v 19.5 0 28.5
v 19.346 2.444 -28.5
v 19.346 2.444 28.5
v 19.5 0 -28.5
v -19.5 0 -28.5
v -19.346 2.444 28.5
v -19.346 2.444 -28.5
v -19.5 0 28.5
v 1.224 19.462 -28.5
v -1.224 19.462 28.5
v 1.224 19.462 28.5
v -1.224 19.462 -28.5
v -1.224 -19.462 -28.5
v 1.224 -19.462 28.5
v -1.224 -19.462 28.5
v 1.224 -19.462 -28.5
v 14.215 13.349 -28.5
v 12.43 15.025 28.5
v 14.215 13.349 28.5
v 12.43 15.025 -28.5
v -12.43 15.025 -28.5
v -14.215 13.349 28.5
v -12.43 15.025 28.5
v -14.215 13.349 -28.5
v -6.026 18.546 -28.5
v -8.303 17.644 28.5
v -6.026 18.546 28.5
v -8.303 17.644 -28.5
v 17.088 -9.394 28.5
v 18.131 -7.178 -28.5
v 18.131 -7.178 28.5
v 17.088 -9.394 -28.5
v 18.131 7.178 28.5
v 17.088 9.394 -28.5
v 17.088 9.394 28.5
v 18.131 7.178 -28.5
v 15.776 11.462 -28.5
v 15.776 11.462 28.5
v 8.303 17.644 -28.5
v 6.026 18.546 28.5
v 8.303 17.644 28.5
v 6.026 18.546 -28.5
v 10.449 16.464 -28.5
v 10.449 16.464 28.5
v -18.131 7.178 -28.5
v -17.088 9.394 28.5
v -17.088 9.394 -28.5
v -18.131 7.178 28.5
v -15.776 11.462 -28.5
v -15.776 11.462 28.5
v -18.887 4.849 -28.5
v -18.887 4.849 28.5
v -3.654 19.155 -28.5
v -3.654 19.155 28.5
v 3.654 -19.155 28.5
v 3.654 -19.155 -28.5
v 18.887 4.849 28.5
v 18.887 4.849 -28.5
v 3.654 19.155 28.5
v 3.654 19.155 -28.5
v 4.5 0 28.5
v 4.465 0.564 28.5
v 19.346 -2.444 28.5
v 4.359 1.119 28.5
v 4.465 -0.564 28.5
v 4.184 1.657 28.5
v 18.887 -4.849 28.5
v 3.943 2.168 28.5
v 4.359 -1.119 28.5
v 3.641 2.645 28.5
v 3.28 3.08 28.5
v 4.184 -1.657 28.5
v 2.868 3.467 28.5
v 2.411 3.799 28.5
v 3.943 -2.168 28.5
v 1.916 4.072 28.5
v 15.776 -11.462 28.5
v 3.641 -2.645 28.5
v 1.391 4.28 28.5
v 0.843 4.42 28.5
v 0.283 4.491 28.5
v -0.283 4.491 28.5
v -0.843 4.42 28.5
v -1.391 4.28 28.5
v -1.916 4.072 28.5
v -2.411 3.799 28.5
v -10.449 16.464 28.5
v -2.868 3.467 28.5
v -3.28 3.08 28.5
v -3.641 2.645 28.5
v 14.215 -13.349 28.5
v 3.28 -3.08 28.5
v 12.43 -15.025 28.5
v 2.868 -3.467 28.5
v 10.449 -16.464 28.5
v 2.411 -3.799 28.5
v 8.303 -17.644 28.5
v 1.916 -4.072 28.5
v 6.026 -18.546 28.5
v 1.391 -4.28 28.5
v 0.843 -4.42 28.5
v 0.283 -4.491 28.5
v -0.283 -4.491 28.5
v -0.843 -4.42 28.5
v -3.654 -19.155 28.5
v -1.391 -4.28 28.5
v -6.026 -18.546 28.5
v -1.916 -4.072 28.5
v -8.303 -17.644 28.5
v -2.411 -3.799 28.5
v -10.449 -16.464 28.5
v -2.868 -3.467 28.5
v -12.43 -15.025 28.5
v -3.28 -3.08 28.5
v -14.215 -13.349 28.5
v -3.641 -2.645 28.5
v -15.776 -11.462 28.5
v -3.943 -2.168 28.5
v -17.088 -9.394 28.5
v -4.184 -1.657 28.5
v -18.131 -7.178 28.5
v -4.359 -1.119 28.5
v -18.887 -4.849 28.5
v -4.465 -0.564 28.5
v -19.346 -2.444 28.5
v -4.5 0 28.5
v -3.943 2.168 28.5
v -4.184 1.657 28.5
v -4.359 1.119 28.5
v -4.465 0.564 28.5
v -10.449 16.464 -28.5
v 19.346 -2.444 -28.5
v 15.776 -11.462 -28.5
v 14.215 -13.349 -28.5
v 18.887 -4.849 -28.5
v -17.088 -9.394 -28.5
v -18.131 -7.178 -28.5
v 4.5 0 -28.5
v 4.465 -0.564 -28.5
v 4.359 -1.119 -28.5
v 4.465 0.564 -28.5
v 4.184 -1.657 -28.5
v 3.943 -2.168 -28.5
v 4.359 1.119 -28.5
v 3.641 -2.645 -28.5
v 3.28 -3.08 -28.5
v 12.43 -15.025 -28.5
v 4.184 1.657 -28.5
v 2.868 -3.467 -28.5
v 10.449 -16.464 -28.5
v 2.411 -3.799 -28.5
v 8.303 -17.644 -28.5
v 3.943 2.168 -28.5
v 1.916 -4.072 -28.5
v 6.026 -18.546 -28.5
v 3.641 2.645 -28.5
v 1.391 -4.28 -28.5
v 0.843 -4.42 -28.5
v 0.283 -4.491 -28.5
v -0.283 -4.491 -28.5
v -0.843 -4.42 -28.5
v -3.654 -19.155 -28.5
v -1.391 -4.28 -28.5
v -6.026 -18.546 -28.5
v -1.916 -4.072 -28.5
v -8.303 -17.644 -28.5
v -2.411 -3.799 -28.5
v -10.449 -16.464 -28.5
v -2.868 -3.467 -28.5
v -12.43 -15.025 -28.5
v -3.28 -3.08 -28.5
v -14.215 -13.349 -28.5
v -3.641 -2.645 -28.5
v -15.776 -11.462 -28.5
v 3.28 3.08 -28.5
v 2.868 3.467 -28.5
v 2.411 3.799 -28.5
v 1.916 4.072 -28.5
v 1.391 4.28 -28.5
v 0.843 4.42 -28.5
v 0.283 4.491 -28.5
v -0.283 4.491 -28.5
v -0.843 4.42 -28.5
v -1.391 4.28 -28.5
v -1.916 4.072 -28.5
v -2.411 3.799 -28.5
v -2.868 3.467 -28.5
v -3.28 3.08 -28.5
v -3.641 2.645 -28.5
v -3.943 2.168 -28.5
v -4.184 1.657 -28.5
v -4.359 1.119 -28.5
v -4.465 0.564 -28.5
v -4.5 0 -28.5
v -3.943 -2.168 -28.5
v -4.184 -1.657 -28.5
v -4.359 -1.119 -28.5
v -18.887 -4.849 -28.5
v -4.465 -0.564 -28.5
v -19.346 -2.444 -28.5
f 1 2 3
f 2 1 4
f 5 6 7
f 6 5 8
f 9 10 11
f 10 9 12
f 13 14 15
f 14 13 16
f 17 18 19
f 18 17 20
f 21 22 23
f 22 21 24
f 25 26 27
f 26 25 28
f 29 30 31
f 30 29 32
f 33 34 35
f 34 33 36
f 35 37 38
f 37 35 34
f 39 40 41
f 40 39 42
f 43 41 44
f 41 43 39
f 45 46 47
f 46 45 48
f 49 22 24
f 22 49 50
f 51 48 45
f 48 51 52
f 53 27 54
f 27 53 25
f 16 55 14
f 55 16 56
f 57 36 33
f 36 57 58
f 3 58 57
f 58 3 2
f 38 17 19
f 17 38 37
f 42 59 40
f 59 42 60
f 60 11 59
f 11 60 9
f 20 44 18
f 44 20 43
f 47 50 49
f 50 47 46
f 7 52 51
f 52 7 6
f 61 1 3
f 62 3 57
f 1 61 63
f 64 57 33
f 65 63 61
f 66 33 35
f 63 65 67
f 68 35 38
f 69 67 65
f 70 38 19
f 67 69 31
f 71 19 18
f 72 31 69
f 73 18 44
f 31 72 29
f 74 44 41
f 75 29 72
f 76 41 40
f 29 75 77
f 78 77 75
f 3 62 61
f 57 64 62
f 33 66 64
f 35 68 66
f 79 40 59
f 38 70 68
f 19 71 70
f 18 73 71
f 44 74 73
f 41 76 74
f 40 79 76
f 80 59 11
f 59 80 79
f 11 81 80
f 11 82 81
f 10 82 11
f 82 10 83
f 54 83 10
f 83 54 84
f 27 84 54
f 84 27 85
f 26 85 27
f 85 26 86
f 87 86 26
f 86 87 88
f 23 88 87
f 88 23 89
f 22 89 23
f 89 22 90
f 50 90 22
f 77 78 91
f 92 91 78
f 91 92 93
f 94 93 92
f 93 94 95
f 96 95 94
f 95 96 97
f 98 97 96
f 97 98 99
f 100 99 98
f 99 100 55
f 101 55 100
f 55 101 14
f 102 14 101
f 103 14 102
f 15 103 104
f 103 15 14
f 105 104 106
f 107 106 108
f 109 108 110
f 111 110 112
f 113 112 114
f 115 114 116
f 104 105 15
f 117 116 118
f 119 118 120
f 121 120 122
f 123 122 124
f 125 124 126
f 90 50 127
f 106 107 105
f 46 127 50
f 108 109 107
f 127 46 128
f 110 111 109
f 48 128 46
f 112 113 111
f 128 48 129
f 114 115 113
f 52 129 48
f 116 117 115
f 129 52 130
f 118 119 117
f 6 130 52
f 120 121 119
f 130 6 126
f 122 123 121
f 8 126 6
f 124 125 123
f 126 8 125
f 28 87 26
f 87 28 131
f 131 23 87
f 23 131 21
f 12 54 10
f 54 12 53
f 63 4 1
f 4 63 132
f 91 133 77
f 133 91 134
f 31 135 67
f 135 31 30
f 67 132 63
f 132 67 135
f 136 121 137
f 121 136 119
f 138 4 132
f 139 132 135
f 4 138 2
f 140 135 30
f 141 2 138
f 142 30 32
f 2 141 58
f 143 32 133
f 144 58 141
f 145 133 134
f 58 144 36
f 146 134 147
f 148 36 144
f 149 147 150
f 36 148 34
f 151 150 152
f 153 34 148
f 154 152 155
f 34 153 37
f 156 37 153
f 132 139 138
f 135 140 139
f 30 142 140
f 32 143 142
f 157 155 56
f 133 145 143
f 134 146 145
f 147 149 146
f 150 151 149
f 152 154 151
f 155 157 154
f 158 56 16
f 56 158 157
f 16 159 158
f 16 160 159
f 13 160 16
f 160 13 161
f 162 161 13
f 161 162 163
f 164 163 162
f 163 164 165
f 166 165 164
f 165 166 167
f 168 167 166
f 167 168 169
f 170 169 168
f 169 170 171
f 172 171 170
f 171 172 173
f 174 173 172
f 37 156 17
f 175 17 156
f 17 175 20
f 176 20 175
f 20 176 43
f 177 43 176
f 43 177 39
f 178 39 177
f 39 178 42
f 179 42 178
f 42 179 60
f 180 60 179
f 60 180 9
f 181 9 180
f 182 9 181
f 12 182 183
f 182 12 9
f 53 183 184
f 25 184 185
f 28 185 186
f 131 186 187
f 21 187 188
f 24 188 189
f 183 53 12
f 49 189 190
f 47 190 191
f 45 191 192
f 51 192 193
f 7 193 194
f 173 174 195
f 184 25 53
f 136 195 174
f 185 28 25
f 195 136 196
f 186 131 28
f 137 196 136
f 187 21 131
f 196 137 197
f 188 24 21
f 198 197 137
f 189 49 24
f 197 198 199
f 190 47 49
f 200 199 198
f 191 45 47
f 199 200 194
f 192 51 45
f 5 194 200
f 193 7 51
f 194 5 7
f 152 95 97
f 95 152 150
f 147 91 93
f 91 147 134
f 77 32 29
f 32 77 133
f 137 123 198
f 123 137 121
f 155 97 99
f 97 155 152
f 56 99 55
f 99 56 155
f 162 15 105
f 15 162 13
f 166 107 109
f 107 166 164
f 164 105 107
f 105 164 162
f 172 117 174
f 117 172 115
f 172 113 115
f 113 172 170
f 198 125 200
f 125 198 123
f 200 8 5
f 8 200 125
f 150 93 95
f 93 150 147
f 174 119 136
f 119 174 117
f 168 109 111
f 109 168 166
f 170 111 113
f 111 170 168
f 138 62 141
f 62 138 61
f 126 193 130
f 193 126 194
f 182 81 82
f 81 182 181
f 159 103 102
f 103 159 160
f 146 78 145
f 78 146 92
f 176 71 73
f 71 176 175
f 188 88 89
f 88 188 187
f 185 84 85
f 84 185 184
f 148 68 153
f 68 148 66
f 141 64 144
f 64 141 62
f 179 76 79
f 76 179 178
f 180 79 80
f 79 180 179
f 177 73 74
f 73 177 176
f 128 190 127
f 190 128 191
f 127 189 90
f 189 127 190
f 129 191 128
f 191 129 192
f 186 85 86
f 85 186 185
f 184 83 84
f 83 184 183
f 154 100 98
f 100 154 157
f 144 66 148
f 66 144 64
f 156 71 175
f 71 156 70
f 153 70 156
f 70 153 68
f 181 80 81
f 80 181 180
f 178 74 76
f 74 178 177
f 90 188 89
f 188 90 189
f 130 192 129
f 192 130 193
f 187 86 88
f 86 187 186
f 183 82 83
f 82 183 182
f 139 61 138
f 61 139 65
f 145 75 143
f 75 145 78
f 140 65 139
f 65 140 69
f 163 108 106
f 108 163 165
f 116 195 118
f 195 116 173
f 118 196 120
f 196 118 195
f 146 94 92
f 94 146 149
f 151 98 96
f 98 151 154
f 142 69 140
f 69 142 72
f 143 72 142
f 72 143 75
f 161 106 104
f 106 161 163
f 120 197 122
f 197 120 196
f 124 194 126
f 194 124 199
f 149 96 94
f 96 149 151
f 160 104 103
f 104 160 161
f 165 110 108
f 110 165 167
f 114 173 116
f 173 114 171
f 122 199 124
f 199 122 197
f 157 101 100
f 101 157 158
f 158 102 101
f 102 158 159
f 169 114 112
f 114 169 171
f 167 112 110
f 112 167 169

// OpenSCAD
$fn = 50;


difference() {
	union() {
		translate(v = [0, 0, -28.5000000000]) {
			cylinder(h = 57, r = 19.5000000000);
		}
	}
	union() {
		translate(v = [0, 0, -100.0000000000]) {
			cylinder(h = 200, r = 4.5000000000);
		}
	}
}
